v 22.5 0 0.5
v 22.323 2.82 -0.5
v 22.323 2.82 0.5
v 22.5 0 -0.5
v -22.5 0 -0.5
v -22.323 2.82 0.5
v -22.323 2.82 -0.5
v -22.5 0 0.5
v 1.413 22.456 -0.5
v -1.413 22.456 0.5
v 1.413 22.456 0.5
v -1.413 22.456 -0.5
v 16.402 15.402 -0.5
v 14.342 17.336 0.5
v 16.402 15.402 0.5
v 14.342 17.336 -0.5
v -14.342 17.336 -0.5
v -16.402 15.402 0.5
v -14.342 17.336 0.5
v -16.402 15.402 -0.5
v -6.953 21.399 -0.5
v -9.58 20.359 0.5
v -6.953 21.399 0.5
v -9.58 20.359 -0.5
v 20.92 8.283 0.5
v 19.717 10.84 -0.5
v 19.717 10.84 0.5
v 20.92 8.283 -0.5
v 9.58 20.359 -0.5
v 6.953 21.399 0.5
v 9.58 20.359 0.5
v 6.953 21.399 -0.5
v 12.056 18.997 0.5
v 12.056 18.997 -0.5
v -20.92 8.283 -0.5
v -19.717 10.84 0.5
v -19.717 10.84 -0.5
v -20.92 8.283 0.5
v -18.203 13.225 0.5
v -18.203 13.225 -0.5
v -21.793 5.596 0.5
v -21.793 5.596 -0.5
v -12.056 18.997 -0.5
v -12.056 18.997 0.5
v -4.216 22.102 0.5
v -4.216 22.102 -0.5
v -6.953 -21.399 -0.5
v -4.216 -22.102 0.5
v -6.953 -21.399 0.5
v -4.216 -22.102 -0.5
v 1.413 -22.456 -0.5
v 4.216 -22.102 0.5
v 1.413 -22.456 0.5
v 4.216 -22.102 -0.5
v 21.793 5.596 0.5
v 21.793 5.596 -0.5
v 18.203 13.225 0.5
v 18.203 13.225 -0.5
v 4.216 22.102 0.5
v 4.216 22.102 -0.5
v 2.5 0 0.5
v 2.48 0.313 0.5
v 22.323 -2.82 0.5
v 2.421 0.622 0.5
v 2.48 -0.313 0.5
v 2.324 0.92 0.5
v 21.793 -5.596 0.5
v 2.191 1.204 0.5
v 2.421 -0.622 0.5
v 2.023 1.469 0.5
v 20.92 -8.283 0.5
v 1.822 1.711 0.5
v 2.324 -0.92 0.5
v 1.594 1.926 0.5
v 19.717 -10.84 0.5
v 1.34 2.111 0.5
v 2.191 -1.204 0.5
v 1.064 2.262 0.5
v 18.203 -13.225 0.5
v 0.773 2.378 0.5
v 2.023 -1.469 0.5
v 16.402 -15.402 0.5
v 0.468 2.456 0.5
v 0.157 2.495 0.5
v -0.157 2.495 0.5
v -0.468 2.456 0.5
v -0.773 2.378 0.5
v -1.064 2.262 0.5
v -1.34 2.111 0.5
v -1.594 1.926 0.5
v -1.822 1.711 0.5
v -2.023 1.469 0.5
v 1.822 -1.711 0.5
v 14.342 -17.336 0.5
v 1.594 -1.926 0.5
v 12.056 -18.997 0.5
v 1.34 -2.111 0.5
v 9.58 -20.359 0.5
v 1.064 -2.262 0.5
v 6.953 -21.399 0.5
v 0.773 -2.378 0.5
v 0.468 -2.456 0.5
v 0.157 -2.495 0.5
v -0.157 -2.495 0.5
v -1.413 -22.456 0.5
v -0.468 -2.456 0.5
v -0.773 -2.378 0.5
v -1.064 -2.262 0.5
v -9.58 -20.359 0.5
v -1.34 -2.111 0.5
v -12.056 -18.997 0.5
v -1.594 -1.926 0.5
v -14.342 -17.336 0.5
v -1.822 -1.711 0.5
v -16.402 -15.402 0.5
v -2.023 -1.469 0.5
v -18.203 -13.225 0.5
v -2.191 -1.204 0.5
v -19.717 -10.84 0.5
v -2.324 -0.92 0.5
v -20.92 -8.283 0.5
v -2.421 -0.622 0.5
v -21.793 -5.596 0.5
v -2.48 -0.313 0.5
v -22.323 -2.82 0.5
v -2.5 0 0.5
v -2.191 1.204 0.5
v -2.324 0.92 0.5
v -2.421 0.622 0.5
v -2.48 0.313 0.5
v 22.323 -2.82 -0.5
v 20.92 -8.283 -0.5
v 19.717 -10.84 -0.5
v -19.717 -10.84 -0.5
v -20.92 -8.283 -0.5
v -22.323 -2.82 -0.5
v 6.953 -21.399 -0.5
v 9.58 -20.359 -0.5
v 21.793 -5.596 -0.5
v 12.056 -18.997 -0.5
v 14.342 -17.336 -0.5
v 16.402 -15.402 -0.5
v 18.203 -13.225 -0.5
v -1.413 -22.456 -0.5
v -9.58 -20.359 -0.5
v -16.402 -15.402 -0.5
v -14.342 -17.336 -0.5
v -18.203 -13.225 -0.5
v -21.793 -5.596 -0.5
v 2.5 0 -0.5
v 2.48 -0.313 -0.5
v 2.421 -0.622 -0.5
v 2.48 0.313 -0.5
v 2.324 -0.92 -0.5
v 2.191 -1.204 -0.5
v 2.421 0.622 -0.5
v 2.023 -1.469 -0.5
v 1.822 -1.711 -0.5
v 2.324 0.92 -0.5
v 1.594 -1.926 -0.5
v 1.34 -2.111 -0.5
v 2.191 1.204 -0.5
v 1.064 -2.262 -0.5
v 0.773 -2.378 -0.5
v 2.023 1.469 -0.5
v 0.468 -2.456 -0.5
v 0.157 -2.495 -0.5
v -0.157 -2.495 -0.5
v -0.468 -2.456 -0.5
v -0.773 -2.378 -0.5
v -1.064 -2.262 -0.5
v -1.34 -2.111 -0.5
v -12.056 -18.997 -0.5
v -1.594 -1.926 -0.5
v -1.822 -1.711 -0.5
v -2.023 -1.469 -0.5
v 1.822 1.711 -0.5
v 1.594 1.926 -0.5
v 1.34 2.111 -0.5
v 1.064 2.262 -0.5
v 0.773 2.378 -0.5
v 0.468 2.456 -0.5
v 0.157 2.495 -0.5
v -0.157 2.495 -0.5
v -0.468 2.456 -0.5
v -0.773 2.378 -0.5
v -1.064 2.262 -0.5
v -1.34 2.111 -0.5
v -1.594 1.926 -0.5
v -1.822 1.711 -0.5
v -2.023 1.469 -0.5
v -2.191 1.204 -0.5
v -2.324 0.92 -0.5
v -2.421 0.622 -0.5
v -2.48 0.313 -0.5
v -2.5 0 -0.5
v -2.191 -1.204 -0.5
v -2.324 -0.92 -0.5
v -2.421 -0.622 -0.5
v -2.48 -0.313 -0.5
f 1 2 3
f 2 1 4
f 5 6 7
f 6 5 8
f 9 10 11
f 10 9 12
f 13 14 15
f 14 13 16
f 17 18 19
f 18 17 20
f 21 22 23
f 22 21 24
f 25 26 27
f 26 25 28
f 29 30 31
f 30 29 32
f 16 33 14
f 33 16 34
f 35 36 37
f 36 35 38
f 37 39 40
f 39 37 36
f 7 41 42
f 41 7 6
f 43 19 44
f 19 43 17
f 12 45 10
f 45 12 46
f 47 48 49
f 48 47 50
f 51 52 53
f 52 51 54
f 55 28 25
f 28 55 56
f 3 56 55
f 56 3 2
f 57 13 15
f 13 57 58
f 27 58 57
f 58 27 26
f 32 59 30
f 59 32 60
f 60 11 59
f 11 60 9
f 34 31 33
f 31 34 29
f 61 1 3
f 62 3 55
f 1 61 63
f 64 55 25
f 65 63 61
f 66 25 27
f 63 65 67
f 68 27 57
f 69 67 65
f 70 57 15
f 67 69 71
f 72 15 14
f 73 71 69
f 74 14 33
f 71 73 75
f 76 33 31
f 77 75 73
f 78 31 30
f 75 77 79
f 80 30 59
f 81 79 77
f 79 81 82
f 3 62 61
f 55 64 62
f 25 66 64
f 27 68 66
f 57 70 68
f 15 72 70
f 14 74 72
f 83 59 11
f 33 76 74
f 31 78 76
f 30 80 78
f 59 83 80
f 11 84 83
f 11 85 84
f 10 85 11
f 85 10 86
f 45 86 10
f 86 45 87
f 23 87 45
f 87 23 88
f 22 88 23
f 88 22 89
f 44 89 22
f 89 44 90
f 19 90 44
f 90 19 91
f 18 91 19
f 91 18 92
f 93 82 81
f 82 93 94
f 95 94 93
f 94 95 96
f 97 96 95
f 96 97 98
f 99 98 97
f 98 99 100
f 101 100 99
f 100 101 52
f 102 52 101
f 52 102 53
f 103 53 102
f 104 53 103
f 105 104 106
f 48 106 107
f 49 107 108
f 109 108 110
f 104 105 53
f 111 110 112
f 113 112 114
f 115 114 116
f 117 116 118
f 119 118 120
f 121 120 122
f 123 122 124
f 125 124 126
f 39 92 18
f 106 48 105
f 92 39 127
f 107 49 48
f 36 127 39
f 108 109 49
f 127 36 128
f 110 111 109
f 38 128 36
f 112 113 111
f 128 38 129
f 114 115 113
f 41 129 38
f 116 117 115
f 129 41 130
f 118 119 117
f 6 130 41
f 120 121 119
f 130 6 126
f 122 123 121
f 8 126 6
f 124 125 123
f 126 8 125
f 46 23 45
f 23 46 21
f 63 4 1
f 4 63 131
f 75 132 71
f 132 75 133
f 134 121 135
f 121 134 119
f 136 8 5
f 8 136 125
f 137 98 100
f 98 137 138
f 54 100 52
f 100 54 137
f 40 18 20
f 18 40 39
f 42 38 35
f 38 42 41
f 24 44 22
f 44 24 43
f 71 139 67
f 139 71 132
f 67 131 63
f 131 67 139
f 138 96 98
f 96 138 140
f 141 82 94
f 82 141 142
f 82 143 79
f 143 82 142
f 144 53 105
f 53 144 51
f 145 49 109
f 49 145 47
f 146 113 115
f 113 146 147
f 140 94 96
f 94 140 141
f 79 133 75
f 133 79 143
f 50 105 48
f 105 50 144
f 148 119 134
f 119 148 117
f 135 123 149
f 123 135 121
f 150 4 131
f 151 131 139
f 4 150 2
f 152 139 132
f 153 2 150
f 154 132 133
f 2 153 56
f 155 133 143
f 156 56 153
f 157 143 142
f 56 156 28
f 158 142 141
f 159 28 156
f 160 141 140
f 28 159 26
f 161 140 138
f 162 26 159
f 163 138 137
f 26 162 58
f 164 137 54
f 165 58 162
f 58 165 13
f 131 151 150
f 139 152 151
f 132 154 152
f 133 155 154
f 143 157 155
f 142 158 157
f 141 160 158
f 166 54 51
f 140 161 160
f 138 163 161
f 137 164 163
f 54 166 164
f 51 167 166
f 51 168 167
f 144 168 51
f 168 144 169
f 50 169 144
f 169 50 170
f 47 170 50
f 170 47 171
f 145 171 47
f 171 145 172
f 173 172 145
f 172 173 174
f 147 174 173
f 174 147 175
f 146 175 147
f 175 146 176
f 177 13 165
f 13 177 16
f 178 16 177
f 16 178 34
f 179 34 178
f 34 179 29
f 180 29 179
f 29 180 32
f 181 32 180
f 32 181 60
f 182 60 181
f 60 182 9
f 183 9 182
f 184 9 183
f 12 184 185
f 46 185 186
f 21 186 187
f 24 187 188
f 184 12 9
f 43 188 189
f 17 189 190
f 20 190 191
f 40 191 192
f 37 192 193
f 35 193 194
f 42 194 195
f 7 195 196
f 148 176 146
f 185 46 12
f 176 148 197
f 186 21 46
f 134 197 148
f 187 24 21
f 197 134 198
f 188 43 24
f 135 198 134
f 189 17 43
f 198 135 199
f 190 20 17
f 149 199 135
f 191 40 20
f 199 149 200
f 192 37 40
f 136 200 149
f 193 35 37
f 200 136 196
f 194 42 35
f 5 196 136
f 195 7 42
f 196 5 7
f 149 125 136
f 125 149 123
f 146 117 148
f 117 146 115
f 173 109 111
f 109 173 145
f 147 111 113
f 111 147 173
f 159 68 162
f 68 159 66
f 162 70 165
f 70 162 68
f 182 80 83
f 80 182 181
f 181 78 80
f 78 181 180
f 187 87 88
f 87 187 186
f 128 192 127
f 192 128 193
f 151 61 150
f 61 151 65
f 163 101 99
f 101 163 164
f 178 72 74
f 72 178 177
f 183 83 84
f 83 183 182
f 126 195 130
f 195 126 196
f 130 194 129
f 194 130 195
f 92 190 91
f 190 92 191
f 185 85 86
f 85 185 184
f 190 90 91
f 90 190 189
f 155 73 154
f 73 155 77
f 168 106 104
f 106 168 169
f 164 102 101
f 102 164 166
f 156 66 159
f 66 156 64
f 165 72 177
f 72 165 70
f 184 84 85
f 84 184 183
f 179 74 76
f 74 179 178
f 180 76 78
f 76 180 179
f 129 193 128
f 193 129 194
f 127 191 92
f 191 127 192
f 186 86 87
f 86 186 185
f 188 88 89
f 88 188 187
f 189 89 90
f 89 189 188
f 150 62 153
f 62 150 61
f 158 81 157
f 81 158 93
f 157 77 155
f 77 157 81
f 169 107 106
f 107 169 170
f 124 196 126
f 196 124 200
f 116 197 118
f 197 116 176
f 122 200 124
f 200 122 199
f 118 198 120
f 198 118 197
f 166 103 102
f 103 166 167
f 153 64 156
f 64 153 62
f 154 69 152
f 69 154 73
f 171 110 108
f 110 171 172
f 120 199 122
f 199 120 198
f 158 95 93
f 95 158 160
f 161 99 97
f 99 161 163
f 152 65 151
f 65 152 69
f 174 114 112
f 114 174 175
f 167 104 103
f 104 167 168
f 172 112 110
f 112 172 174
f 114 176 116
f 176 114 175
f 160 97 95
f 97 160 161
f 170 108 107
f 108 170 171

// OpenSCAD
$fn = 50;


difference() {
	union() {
		translate(v = [0, 0, -0.5000000000]) {
			cylinder(h = 1, r = 22.5000000000);
		}
	}
	union() {
		translate(v = [0, 0, -100.0000000000]) {
			cylinder(h = 200, r = 2.5000000000);
		}
	}
}
